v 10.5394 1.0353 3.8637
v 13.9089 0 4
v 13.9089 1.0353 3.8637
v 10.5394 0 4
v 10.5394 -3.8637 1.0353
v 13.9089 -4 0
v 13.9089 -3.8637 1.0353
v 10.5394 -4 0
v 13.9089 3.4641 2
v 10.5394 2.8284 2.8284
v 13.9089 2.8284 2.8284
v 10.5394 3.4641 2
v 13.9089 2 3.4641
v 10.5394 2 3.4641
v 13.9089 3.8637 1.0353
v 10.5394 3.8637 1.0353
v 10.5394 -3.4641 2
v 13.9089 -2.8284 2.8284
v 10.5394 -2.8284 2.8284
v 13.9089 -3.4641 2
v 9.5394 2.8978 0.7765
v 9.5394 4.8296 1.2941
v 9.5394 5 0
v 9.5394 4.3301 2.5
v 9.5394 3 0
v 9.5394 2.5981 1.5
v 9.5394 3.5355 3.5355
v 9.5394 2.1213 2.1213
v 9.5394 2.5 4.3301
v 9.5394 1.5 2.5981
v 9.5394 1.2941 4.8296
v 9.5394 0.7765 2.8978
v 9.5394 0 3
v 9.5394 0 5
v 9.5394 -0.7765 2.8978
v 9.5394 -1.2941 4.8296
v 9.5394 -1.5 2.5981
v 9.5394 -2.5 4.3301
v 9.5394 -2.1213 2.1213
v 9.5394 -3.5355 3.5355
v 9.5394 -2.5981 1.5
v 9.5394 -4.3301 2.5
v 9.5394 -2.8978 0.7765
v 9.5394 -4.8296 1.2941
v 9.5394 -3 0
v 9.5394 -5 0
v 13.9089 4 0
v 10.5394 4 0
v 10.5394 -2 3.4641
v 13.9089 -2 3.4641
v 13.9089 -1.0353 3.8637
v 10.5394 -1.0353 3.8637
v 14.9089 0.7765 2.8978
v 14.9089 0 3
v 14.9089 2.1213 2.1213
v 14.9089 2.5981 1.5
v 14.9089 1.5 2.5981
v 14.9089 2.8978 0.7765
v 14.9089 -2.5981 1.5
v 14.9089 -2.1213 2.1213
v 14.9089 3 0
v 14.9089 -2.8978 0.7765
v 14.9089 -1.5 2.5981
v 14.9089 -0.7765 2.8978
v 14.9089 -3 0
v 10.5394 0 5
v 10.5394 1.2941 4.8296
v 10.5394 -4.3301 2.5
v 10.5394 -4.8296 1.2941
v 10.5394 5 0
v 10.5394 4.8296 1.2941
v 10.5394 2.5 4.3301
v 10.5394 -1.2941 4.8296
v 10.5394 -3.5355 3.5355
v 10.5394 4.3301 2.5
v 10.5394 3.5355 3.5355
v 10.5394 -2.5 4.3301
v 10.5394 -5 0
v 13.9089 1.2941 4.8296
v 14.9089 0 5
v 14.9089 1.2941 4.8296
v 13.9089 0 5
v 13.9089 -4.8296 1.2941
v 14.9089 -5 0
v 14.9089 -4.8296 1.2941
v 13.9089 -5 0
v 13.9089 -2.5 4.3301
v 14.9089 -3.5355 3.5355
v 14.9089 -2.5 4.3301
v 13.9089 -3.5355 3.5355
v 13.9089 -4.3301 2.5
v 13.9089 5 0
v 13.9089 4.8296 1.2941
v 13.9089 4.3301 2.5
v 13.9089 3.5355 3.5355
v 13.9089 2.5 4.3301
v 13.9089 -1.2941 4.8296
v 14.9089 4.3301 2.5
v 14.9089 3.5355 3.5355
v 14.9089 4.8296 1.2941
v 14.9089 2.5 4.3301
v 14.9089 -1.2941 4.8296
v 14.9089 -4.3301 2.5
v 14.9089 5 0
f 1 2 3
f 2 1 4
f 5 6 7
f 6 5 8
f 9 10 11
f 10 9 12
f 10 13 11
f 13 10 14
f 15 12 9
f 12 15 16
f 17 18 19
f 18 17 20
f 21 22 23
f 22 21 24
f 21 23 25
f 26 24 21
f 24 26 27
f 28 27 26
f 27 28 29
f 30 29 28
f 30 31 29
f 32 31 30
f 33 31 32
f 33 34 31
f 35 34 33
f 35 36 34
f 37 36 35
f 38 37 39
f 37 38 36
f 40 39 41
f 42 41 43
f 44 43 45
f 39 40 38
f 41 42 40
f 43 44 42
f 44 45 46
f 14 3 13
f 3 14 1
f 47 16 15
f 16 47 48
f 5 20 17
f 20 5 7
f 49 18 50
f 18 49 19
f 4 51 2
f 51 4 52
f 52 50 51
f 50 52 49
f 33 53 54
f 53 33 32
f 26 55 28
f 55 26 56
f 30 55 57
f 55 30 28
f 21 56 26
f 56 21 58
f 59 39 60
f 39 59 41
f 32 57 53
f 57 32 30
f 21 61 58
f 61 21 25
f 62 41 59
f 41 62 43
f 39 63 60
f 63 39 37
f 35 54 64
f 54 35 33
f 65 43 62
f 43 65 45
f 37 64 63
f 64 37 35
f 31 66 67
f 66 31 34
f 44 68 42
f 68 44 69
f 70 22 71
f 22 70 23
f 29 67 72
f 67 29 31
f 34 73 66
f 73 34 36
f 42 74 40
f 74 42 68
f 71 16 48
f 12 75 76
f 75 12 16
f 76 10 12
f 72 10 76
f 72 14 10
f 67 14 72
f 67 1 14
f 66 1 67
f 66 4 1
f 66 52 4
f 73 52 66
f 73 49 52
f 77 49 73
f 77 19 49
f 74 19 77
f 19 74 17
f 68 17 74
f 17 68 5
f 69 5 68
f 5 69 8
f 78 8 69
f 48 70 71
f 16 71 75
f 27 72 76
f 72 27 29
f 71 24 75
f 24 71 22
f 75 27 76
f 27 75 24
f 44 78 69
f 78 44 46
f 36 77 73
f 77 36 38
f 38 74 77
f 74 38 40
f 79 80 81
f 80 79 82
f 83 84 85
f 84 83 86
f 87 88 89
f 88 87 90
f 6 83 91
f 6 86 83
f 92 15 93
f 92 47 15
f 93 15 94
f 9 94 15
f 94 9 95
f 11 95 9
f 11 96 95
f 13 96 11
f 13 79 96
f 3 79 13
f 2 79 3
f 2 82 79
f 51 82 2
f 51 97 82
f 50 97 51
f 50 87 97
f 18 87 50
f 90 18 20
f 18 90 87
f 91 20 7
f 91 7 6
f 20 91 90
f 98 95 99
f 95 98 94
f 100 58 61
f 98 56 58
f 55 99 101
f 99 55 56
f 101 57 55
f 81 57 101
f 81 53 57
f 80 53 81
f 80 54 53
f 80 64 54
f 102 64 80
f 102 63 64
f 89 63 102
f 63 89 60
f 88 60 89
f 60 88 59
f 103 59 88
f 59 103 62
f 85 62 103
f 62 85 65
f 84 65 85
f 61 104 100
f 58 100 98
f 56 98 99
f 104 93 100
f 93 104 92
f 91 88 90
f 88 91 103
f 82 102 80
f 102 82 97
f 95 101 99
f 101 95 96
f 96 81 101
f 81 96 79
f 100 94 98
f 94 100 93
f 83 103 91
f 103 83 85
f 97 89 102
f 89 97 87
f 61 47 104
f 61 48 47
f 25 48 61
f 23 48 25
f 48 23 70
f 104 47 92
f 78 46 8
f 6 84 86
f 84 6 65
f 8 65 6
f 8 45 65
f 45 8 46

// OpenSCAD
// file: ../build_environments.scad
// build_environments.scad: modules to build level sections
//

module pool(diameter=10.0, wall_height=2.0, step_width=3.0, connections=[])
{
    difference() {
        union() {
        difference() {
            cylinder(h=0.5,r1=diameter+step_width,r2=diameter+step_width,$fn=48);
            translate([0,0,-0.1])
                cylinder(h=0.7,r1=diameter,r2=diameter,$fn=48);
        }
        difference() {
            cylinder(h=wall_height,r1=diameter+step_width+1.0,r2=diameter+step_width+1.0,$fn=48);
            translate([0,0,-0.1])
                cylinder(h=wall_height+0.2,r1=diameter+step_width,r2=diameter+step_width,$fn=48);
        }
        }
    
        for (c = connections)
        {
            rotate([0,90,0]) {
                angle = atan2(c[1],c[0]);
                rotate([-angle,0,0]) {
                    cylinder(h=diameter+5.0,r1=c[2],r2=c[2],$fn=48);
                }
            }
        }
    }
}

module straight(length=10.0, width=2.0, dy1=0.0, dy2=0.0, dz=0.0)
{
    dims = [0, 0, 0, 0, 0, (dz/length)];
    matrix = [
        [ 1, dims[0], dims[1], 0 ],
        [ dims[2], 1, dims[4], 0 ],
        [ dims[5], dims[3], 1, 0 ],
        [ 0, 0, 0, 1 ]
    ];
    multmatrix(matrix)
    difference() {
        translate([dy1,0,0])
        union() {
            rotate([0,90,0]) {
                difference() {
                    cylinder(h=(length-dy1-dy2),r1=width+1.0,r2=width+1.0,$fn=24);
                    translate([0,0,-0.1])
                        cylinder(h=(length-dy1-dy2+0.2),r1=width,r2=width,$fn=24);
                }
                difference() {
                    cylinder(h=1.0,r1=width+2.0,r2=width+2.0,$fn=24);
                    translate([0,0,-0.1])
                        cylinder(h=1.2,r1=width,r2=width,$fn=24);
                }
                translate([0,0,(length-dy1-dy2)-1.0]) {
                    difference() {
                        cylinder(h=1.0,r1=width+2.0,r2=width+2.0,$fn=24);
                        translate([0,0,-0.1])
                            cylinder(h=1.2,r1=width,r2=width,$fn=24);
                    }
                }
            }
        }
        translate([0,0,-(2*width+4.0)/2])
            cube([3*length,3*length,2*width+4.0],center=true);
    }
}

module curve(p0=[0,0], center=[0,0], dir=1, angle=0.0, width=2.0)
{
    radius = sqrt((p0[0]-center[0])*(p0[0]-center[0]) + (p0[1]-center[1])*(p0[1]-center[1]));
    if (dir == 0) {
        difference() {
            rotate([0,0,-90])
            difference() {
                rotate_extrude(angle = angle, convexity = 10, $fn=32)
                    translate([radius, 0, 0])
                        circle(r = width+1.0,$fn=24);
                rotate([0,0,-1.0])
                    rotate_extrude(angle = angle+2.0, convexity = 10, $fn=32)
                        translate([radius, 0, 0])
                            circle(r = width,$fn=24);
            }
            translate([0,0,-(2*width+4.0)/2])
                cube([5*radius,5*radius,2*width+4.0],center=true);
        }
    }
    else {
        difference() {
            rotate([0,0,90])
            difference() {
                rotate_extrude(angle = -angle, convexity = 10, $fn=32)
                    translate([radius, 0, 0])
                        circle(r = width+1.0,$fn=24);
                rotate([0,0,1.0])
                    rotate_extrude(angle = -angle-2.0, convexity = 10, $fn=32)
                        translate([radius, 0, 0])
                            circle(r = width,$fn=24);
            }
            translate([0,0,-(2*width+4.0)/2])
                cube([5*radius,5*radius,2*width+4.0],center=true);
        }
    }

}

// test pool
//pool(diameter=12.0000, wall_height=3.0000, step_width=3.0000, connections=[[0.0000,-26.0000,2.0000], [23.6074,0.0000,2.0000]]);

// test straight, slope
//straight(length=26.0000, width=2.0000, dy1=11.8322, dy2=6.7082, dz=0.0000);
//straight(length=29.1549, width=12.0000, dy1=0.0000, dy2=0.0000, dz=-15.0000);

// test curve
//curve(p0=[23.6074, 0.0000], center=[23.6074, 5.0000], dir=0, angle=60.1011, width=2.0000);
//curve(p0=[33.6426, 12.4219], center=[37.9771, 9.9295], dir=1, angle=120.4627, width=2.0000);
// main file
use <../build_environments.scad>;
straight(length=14.9089, width=3.0000, dy1=9.5394, dy2=0.0000, dz=0.0000);
